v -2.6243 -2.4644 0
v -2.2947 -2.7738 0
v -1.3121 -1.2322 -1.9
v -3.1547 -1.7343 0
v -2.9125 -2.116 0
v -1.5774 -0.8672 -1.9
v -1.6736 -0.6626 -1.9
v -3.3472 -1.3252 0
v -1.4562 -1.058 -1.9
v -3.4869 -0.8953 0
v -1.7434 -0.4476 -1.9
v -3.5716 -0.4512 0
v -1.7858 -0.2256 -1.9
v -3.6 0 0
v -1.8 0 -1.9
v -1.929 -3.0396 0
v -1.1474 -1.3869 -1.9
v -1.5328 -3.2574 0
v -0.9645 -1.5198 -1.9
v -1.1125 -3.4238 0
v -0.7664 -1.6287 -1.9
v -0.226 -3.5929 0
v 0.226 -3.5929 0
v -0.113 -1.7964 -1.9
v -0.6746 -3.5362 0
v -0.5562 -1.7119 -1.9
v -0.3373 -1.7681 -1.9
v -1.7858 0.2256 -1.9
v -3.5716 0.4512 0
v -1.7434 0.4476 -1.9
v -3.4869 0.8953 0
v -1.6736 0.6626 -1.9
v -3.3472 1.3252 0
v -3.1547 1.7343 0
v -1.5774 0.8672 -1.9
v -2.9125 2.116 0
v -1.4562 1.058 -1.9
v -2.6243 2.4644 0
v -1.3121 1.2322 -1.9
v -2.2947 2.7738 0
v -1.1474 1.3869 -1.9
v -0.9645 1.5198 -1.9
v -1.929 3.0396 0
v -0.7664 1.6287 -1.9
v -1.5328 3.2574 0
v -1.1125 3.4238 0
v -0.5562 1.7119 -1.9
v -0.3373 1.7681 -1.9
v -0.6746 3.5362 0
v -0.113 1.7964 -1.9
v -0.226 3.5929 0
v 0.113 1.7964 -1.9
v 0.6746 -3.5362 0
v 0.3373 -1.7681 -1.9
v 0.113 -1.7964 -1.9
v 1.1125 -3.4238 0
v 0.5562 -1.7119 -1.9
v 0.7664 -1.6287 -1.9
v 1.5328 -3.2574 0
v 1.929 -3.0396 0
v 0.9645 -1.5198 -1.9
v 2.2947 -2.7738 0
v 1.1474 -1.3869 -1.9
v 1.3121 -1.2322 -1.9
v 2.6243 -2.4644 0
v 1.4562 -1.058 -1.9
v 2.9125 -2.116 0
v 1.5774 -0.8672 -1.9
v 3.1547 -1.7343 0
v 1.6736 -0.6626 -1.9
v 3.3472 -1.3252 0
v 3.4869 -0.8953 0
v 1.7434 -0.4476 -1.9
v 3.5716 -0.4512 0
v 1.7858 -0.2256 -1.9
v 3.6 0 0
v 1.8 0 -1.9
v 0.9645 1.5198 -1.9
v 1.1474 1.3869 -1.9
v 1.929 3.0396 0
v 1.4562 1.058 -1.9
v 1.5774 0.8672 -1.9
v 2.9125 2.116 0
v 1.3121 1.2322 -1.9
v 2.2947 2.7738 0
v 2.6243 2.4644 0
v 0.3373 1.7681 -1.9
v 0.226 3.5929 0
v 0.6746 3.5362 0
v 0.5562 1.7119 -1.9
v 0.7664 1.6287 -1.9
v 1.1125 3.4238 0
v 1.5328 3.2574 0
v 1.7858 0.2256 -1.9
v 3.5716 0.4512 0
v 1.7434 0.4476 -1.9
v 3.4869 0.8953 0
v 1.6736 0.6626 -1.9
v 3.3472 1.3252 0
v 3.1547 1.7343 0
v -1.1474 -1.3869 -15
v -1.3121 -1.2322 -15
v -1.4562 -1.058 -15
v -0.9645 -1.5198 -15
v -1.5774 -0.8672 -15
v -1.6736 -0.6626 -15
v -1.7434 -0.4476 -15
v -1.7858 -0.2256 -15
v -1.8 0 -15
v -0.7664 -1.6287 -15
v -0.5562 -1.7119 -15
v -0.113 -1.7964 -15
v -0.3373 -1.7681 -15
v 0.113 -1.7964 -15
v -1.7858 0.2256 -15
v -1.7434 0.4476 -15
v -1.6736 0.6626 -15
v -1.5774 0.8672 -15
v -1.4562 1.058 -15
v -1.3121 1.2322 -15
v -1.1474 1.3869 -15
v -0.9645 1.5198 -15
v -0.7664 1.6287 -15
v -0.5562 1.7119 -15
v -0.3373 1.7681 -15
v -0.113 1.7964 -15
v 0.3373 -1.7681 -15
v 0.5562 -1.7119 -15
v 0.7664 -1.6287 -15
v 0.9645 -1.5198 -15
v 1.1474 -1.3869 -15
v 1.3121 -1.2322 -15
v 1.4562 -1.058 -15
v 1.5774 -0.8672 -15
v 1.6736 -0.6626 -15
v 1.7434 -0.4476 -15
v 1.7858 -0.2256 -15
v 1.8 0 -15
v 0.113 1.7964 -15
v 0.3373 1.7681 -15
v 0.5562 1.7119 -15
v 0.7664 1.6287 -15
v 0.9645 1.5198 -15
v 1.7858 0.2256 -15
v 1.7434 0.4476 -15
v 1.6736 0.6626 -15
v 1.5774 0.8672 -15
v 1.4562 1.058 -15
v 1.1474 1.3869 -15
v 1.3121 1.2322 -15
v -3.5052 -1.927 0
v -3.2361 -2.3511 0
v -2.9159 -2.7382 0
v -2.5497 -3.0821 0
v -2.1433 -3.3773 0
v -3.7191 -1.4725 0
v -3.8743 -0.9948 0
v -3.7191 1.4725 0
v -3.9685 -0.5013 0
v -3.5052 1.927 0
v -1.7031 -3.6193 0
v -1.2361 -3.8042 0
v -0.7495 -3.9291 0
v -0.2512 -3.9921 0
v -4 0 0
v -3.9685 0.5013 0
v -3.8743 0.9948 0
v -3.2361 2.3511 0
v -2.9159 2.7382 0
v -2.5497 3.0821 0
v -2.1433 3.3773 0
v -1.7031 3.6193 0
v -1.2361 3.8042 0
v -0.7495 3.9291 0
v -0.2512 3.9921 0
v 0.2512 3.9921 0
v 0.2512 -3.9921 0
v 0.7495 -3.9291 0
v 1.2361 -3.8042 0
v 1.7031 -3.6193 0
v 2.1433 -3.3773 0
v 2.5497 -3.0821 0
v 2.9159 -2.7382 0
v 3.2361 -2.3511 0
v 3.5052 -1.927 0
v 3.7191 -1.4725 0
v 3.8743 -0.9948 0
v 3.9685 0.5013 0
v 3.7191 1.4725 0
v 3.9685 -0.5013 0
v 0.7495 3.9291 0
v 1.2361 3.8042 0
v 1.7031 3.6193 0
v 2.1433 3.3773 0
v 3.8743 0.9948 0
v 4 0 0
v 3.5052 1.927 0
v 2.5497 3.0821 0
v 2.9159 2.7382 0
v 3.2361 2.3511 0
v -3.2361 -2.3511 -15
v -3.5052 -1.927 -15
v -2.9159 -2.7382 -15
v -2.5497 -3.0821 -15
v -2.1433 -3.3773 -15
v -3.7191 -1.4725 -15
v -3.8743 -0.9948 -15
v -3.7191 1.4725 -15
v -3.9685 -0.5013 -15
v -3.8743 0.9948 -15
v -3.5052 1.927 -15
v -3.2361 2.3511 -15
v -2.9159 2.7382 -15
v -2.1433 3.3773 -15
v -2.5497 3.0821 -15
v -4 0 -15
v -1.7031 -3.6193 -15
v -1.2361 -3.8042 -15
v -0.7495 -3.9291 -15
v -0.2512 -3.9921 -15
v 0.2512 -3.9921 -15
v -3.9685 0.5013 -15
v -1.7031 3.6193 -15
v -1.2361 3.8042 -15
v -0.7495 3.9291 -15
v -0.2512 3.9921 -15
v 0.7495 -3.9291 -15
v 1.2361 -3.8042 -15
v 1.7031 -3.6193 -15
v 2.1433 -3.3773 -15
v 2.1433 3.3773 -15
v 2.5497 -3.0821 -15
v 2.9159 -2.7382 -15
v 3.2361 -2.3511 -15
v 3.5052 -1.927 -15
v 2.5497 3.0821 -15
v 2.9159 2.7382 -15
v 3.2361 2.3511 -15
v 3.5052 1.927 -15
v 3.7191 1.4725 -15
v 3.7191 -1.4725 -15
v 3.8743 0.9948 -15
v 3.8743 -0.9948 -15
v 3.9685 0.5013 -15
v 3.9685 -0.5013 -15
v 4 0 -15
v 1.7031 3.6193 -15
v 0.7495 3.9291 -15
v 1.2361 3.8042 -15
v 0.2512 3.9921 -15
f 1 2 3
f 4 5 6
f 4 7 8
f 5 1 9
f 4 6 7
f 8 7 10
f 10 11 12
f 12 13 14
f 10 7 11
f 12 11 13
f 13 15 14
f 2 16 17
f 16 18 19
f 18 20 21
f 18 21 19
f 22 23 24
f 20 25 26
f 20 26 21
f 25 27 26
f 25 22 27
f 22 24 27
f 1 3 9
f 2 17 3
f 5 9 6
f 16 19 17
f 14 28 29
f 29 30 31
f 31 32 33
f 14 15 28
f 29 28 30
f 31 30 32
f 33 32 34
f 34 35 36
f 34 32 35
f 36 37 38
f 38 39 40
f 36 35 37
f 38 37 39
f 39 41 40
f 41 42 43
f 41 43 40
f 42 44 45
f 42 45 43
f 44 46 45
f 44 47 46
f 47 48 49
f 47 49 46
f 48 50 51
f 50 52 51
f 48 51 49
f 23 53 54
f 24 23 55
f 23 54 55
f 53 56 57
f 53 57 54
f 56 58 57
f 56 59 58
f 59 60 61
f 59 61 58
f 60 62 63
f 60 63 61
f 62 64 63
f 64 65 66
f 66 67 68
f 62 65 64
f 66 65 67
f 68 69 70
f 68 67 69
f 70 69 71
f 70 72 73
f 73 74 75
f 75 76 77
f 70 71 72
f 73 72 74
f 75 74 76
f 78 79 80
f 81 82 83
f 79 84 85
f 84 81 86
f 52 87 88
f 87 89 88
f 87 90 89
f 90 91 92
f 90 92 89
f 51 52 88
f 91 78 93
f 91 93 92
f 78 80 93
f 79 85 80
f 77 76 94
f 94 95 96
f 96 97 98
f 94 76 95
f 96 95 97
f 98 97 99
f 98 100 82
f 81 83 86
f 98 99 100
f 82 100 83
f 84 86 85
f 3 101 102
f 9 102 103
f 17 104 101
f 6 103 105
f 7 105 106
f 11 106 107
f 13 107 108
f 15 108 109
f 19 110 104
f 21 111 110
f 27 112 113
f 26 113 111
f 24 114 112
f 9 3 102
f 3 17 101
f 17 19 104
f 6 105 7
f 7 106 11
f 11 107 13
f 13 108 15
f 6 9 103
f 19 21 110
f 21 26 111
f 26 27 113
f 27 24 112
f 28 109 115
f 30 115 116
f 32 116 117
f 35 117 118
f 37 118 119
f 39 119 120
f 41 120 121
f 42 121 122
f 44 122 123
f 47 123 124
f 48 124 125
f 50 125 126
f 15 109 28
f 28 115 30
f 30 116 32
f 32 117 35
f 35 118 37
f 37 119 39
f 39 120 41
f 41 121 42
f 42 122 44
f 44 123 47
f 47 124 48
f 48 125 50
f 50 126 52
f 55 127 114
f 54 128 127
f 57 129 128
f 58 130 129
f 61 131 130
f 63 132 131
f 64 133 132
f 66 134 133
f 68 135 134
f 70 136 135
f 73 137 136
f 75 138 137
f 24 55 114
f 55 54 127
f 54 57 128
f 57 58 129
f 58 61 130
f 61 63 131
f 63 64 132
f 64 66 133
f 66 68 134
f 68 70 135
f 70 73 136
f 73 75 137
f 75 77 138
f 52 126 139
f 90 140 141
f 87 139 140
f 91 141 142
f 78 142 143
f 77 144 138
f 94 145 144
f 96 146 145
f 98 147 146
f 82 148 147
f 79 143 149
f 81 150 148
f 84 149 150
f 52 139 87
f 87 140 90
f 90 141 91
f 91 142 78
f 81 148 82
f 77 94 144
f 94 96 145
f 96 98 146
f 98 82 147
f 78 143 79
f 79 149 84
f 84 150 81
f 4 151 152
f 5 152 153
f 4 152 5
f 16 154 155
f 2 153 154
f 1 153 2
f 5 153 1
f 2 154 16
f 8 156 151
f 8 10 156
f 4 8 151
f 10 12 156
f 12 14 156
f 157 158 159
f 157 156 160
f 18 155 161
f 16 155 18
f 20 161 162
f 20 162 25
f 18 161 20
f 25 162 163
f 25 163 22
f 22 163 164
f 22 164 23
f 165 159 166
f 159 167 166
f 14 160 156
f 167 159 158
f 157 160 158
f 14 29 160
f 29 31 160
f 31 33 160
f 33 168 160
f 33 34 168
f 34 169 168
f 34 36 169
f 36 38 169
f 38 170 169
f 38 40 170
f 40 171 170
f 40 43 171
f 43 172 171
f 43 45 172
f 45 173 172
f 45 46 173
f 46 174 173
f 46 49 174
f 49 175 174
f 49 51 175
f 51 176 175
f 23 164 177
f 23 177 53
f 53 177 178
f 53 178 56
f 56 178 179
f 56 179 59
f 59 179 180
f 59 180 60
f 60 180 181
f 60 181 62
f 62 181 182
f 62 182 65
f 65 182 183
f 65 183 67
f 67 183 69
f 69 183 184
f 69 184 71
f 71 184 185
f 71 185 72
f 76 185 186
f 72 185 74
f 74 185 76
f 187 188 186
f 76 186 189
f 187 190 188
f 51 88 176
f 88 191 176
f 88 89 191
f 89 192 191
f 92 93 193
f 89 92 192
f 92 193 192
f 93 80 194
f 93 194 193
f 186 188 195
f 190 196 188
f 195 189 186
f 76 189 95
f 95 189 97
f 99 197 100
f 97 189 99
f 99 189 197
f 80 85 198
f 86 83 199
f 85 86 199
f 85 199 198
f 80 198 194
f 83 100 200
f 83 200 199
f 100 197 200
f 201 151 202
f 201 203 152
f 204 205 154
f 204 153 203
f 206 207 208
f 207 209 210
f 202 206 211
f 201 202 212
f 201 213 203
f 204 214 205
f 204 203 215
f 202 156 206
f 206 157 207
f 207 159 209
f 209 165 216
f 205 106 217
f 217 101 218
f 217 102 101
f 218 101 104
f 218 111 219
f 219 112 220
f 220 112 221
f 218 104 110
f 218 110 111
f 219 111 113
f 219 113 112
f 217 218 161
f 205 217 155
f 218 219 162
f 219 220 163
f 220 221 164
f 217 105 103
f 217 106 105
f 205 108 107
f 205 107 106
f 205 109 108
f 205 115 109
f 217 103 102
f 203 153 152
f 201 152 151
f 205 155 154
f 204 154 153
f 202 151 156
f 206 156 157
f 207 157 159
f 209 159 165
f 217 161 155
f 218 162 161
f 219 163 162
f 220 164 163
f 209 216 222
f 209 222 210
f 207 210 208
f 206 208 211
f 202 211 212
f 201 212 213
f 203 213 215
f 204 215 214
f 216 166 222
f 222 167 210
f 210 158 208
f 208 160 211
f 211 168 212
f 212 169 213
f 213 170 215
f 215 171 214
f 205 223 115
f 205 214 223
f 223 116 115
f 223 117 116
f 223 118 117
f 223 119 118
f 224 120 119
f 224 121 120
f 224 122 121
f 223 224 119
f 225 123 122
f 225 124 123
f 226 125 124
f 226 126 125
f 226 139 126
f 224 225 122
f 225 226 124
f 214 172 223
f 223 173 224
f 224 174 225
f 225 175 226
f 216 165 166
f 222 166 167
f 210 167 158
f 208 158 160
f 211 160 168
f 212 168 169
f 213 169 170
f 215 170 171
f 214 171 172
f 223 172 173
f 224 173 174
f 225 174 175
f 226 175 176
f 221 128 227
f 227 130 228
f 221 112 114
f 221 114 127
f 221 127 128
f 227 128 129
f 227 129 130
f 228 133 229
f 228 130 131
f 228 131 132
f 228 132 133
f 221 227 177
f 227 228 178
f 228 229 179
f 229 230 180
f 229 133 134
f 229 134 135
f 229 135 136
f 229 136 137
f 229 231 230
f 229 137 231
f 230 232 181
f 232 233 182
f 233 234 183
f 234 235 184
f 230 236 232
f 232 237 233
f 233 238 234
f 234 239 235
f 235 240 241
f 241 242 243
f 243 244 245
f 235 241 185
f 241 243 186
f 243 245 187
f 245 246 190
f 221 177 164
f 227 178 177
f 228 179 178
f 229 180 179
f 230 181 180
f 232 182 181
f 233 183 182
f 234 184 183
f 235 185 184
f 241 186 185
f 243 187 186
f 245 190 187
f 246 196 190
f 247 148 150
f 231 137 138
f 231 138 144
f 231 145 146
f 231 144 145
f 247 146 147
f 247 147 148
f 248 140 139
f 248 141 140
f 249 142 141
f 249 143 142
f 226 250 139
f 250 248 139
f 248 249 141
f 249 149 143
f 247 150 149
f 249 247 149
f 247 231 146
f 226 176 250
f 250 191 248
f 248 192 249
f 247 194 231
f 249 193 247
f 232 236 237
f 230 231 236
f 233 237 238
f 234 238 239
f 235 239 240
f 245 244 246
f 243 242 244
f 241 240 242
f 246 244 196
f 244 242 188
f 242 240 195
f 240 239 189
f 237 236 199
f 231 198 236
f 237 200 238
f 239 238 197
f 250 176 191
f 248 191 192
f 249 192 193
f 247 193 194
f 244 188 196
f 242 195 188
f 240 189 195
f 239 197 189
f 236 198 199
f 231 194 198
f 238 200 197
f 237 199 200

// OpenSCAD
$fn = 50;

difference() {
	union() {
		translate(v = [0, 0, -15.0]) {
			cylinder(h = 18, r = 4.0);
		}
	}
	union() {
		translate(v = [0, 0, 0]) {
			rotate(a = [0, 0, 0]) {
				difference() {
					union() {
						translate(v = [0, 0, -18.0]) {
							cylinder(h = 18, r = 1.5);
						}
						translate(v = [0, 0, -1.9]) {
							cylinder(h = 1.9, r1 = 1.8, r2 = 3.6);
						}
						translate(v = [0, 0, -18.0]) {
							cylinder(h = 18, r = 1.8);
						}
						translate(v = [0, 0, -18.0]) {
							cylinder(h = 18, r = 1.5);
						}
					}
					union();
				}
			}
		}
		#cylinder(h = 3, r = 5.0);
	}
}
